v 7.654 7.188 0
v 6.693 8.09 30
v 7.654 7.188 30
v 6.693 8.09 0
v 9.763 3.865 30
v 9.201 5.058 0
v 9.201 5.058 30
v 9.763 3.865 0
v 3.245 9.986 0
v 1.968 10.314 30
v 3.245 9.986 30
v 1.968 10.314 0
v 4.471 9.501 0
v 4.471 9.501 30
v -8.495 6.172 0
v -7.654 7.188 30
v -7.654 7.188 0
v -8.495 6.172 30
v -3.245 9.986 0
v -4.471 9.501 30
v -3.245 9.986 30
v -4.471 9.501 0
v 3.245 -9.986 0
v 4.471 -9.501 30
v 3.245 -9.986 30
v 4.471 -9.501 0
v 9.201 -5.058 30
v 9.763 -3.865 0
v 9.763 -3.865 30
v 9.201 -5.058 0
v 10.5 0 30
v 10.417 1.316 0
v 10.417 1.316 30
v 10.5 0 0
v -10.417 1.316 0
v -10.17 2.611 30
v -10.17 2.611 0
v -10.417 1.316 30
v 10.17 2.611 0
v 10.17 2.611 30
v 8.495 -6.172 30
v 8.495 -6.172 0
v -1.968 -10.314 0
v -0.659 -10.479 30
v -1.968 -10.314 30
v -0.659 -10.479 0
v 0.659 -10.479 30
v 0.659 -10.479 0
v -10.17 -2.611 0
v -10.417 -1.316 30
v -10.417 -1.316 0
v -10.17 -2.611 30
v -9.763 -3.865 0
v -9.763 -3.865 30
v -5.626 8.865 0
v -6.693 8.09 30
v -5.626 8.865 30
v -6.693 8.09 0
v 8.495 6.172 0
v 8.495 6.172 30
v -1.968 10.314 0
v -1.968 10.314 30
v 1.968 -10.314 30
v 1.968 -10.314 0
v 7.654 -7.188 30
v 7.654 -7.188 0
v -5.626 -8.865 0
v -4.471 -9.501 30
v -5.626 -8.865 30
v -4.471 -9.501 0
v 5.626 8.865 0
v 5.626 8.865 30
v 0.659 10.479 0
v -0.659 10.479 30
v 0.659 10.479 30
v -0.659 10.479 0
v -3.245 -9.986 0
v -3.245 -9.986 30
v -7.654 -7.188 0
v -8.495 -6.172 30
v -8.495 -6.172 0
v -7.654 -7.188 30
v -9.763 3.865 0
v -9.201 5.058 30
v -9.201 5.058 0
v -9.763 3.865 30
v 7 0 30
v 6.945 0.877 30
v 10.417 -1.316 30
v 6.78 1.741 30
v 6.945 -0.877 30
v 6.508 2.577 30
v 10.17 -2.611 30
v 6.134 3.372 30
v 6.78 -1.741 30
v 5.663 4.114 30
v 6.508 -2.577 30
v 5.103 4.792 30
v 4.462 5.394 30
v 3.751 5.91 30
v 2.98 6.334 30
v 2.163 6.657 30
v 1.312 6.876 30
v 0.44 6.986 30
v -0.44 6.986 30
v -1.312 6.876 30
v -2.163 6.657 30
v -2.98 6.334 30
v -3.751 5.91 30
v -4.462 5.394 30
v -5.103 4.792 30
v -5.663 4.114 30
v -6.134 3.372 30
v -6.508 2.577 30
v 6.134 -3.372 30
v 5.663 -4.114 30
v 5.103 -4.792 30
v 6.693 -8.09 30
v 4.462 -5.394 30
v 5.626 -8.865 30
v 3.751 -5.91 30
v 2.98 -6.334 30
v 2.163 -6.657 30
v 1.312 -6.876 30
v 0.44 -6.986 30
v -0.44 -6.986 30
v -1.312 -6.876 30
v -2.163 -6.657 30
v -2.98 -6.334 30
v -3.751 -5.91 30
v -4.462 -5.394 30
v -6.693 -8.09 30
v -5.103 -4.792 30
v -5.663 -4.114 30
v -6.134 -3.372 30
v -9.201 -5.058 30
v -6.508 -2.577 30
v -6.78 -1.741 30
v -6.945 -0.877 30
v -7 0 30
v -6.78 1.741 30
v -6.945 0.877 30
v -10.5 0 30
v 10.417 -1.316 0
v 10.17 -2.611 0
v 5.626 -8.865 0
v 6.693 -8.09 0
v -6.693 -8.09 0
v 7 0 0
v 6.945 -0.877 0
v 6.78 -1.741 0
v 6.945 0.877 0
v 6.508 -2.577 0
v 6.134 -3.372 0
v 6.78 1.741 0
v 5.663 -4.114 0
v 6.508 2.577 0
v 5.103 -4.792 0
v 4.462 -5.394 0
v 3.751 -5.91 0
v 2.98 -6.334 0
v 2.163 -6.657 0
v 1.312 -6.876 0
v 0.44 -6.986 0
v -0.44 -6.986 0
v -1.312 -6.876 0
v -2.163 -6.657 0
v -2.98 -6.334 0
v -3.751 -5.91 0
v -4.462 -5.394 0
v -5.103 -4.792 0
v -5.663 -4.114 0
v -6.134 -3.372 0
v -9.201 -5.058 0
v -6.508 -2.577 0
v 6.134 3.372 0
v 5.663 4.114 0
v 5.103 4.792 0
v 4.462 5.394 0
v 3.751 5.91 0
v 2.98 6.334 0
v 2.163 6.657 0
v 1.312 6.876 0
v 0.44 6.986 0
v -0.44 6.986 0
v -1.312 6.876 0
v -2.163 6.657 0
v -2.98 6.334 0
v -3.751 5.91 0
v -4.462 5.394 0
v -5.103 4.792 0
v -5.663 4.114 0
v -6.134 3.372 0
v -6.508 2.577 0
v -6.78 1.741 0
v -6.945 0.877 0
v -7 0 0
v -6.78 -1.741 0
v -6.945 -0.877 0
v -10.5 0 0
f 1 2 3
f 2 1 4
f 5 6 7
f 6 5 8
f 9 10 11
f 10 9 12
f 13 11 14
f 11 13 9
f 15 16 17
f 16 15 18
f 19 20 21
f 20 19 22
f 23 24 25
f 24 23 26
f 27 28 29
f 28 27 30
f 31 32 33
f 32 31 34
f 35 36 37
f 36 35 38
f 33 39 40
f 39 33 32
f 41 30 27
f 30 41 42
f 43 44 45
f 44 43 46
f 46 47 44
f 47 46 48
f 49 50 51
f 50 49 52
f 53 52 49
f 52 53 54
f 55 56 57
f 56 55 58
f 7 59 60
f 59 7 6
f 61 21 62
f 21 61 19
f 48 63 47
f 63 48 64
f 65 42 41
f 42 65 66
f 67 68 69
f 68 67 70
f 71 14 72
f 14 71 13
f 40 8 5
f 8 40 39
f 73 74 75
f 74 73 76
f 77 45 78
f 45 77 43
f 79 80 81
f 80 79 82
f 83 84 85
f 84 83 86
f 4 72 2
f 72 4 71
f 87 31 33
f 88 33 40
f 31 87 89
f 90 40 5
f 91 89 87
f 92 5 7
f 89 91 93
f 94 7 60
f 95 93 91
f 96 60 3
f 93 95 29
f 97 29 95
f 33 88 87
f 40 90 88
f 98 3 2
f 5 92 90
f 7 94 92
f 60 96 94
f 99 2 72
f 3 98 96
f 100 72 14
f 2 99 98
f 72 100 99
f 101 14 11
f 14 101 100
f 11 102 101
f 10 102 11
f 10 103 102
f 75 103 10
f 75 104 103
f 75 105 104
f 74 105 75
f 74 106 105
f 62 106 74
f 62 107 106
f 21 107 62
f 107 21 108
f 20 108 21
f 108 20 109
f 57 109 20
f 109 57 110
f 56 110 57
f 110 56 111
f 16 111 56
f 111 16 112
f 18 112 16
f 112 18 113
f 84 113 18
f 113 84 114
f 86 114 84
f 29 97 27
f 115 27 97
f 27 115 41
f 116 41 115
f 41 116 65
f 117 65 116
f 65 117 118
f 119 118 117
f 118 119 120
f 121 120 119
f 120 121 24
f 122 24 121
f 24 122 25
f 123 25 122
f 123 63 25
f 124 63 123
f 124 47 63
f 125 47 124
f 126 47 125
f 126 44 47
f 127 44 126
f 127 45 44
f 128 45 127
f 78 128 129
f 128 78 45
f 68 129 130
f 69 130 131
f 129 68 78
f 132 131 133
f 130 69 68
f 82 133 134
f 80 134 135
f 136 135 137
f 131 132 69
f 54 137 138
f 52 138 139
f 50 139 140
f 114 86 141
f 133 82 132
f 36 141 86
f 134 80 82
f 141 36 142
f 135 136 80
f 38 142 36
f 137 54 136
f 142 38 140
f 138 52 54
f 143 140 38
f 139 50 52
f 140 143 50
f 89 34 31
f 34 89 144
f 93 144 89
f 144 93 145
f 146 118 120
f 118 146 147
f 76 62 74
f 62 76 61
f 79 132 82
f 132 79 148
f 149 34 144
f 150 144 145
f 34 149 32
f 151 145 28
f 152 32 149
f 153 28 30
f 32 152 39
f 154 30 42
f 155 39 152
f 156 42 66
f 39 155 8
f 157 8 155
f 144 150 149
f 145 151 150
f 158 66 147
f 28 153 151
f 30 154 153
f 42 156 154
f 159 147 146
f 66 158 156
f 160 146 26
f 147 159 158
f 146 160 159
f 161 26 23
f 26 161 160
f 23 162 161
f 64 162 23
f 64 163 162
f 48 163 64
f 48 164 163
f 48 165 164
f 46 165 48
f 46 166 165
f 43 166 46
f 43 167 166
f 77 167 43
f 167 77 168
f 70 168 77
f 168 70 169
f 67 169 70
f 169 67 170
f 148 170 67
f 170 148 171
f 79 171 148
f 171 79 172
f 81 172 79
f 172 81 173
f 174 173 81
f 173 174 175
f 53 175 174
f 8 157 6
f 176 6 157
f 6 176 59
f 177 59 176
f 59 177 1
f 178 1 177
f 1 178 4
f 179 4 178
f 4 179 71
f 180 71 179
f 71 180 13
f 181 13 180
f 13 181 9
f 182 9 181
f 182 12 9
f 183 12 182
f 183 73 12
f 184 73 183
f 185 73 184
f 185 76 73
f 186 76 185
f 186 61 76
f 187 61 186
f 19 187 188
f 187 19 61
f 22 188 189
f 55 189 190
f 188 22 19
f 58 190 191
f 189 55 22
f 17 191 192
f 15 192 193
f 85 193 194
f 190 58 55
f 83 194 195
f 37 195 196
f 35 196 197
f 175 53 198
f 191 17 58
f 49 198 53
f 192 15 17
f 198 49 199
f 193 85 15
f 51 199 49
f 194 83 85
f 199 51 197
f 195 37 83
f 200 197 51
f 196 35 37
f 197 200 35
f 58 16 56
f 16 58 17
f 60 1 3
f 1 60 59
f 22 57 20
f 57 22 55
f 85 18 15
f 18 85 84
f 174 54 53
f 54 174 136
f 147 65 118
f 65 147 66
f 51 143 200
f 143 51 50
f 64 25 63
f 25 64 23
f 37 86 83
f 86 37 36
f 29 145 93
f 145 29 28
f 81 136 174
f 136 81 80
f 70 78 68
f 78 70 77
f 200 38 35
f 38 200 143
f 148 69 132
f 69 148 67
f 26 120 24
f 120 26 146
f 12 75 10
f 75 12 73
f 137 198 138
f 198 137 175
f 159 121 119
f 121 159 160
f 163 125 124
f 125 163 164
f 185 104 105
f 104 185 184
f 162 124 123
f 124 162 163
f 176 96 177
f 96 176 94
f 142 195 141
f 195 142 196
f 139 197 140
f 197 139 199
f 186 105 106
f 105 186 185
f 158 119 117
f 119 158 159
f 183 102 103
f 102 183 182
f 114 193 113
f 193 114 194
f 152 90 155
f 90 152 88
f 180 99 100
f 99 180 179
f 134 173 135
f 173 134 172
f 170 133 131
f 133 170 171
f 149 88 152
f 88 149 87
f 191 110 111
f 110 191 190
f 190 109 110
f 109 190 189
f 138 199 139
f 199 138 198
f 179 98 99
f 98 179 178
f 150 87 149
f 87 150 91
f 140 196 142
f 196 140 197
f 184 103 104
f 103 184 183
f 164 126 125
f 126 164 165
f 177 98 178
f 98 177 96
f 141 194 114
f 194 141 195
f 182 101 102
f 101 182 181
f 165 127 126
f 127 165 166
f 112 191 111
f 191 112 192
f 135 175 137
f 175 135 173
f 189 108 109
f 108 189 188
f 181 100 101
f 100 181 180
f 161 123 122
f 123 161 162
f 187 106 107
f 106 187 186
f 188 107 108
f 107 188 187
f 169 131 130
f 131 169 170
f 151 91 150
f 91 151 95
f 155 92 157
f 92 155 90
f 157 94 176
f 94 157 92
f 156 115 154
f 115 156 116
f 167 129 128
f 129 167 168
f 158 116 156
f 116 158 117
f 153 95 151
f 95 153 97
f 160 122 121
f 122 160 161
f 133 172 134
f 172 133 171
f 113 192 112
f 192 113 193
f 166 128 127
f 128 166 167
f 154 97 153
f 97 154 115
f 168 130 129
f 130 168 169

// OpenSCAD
$fn=50;
difference() {
    cylinder(30,d=21);
    cylinder(30,d=14);
}
